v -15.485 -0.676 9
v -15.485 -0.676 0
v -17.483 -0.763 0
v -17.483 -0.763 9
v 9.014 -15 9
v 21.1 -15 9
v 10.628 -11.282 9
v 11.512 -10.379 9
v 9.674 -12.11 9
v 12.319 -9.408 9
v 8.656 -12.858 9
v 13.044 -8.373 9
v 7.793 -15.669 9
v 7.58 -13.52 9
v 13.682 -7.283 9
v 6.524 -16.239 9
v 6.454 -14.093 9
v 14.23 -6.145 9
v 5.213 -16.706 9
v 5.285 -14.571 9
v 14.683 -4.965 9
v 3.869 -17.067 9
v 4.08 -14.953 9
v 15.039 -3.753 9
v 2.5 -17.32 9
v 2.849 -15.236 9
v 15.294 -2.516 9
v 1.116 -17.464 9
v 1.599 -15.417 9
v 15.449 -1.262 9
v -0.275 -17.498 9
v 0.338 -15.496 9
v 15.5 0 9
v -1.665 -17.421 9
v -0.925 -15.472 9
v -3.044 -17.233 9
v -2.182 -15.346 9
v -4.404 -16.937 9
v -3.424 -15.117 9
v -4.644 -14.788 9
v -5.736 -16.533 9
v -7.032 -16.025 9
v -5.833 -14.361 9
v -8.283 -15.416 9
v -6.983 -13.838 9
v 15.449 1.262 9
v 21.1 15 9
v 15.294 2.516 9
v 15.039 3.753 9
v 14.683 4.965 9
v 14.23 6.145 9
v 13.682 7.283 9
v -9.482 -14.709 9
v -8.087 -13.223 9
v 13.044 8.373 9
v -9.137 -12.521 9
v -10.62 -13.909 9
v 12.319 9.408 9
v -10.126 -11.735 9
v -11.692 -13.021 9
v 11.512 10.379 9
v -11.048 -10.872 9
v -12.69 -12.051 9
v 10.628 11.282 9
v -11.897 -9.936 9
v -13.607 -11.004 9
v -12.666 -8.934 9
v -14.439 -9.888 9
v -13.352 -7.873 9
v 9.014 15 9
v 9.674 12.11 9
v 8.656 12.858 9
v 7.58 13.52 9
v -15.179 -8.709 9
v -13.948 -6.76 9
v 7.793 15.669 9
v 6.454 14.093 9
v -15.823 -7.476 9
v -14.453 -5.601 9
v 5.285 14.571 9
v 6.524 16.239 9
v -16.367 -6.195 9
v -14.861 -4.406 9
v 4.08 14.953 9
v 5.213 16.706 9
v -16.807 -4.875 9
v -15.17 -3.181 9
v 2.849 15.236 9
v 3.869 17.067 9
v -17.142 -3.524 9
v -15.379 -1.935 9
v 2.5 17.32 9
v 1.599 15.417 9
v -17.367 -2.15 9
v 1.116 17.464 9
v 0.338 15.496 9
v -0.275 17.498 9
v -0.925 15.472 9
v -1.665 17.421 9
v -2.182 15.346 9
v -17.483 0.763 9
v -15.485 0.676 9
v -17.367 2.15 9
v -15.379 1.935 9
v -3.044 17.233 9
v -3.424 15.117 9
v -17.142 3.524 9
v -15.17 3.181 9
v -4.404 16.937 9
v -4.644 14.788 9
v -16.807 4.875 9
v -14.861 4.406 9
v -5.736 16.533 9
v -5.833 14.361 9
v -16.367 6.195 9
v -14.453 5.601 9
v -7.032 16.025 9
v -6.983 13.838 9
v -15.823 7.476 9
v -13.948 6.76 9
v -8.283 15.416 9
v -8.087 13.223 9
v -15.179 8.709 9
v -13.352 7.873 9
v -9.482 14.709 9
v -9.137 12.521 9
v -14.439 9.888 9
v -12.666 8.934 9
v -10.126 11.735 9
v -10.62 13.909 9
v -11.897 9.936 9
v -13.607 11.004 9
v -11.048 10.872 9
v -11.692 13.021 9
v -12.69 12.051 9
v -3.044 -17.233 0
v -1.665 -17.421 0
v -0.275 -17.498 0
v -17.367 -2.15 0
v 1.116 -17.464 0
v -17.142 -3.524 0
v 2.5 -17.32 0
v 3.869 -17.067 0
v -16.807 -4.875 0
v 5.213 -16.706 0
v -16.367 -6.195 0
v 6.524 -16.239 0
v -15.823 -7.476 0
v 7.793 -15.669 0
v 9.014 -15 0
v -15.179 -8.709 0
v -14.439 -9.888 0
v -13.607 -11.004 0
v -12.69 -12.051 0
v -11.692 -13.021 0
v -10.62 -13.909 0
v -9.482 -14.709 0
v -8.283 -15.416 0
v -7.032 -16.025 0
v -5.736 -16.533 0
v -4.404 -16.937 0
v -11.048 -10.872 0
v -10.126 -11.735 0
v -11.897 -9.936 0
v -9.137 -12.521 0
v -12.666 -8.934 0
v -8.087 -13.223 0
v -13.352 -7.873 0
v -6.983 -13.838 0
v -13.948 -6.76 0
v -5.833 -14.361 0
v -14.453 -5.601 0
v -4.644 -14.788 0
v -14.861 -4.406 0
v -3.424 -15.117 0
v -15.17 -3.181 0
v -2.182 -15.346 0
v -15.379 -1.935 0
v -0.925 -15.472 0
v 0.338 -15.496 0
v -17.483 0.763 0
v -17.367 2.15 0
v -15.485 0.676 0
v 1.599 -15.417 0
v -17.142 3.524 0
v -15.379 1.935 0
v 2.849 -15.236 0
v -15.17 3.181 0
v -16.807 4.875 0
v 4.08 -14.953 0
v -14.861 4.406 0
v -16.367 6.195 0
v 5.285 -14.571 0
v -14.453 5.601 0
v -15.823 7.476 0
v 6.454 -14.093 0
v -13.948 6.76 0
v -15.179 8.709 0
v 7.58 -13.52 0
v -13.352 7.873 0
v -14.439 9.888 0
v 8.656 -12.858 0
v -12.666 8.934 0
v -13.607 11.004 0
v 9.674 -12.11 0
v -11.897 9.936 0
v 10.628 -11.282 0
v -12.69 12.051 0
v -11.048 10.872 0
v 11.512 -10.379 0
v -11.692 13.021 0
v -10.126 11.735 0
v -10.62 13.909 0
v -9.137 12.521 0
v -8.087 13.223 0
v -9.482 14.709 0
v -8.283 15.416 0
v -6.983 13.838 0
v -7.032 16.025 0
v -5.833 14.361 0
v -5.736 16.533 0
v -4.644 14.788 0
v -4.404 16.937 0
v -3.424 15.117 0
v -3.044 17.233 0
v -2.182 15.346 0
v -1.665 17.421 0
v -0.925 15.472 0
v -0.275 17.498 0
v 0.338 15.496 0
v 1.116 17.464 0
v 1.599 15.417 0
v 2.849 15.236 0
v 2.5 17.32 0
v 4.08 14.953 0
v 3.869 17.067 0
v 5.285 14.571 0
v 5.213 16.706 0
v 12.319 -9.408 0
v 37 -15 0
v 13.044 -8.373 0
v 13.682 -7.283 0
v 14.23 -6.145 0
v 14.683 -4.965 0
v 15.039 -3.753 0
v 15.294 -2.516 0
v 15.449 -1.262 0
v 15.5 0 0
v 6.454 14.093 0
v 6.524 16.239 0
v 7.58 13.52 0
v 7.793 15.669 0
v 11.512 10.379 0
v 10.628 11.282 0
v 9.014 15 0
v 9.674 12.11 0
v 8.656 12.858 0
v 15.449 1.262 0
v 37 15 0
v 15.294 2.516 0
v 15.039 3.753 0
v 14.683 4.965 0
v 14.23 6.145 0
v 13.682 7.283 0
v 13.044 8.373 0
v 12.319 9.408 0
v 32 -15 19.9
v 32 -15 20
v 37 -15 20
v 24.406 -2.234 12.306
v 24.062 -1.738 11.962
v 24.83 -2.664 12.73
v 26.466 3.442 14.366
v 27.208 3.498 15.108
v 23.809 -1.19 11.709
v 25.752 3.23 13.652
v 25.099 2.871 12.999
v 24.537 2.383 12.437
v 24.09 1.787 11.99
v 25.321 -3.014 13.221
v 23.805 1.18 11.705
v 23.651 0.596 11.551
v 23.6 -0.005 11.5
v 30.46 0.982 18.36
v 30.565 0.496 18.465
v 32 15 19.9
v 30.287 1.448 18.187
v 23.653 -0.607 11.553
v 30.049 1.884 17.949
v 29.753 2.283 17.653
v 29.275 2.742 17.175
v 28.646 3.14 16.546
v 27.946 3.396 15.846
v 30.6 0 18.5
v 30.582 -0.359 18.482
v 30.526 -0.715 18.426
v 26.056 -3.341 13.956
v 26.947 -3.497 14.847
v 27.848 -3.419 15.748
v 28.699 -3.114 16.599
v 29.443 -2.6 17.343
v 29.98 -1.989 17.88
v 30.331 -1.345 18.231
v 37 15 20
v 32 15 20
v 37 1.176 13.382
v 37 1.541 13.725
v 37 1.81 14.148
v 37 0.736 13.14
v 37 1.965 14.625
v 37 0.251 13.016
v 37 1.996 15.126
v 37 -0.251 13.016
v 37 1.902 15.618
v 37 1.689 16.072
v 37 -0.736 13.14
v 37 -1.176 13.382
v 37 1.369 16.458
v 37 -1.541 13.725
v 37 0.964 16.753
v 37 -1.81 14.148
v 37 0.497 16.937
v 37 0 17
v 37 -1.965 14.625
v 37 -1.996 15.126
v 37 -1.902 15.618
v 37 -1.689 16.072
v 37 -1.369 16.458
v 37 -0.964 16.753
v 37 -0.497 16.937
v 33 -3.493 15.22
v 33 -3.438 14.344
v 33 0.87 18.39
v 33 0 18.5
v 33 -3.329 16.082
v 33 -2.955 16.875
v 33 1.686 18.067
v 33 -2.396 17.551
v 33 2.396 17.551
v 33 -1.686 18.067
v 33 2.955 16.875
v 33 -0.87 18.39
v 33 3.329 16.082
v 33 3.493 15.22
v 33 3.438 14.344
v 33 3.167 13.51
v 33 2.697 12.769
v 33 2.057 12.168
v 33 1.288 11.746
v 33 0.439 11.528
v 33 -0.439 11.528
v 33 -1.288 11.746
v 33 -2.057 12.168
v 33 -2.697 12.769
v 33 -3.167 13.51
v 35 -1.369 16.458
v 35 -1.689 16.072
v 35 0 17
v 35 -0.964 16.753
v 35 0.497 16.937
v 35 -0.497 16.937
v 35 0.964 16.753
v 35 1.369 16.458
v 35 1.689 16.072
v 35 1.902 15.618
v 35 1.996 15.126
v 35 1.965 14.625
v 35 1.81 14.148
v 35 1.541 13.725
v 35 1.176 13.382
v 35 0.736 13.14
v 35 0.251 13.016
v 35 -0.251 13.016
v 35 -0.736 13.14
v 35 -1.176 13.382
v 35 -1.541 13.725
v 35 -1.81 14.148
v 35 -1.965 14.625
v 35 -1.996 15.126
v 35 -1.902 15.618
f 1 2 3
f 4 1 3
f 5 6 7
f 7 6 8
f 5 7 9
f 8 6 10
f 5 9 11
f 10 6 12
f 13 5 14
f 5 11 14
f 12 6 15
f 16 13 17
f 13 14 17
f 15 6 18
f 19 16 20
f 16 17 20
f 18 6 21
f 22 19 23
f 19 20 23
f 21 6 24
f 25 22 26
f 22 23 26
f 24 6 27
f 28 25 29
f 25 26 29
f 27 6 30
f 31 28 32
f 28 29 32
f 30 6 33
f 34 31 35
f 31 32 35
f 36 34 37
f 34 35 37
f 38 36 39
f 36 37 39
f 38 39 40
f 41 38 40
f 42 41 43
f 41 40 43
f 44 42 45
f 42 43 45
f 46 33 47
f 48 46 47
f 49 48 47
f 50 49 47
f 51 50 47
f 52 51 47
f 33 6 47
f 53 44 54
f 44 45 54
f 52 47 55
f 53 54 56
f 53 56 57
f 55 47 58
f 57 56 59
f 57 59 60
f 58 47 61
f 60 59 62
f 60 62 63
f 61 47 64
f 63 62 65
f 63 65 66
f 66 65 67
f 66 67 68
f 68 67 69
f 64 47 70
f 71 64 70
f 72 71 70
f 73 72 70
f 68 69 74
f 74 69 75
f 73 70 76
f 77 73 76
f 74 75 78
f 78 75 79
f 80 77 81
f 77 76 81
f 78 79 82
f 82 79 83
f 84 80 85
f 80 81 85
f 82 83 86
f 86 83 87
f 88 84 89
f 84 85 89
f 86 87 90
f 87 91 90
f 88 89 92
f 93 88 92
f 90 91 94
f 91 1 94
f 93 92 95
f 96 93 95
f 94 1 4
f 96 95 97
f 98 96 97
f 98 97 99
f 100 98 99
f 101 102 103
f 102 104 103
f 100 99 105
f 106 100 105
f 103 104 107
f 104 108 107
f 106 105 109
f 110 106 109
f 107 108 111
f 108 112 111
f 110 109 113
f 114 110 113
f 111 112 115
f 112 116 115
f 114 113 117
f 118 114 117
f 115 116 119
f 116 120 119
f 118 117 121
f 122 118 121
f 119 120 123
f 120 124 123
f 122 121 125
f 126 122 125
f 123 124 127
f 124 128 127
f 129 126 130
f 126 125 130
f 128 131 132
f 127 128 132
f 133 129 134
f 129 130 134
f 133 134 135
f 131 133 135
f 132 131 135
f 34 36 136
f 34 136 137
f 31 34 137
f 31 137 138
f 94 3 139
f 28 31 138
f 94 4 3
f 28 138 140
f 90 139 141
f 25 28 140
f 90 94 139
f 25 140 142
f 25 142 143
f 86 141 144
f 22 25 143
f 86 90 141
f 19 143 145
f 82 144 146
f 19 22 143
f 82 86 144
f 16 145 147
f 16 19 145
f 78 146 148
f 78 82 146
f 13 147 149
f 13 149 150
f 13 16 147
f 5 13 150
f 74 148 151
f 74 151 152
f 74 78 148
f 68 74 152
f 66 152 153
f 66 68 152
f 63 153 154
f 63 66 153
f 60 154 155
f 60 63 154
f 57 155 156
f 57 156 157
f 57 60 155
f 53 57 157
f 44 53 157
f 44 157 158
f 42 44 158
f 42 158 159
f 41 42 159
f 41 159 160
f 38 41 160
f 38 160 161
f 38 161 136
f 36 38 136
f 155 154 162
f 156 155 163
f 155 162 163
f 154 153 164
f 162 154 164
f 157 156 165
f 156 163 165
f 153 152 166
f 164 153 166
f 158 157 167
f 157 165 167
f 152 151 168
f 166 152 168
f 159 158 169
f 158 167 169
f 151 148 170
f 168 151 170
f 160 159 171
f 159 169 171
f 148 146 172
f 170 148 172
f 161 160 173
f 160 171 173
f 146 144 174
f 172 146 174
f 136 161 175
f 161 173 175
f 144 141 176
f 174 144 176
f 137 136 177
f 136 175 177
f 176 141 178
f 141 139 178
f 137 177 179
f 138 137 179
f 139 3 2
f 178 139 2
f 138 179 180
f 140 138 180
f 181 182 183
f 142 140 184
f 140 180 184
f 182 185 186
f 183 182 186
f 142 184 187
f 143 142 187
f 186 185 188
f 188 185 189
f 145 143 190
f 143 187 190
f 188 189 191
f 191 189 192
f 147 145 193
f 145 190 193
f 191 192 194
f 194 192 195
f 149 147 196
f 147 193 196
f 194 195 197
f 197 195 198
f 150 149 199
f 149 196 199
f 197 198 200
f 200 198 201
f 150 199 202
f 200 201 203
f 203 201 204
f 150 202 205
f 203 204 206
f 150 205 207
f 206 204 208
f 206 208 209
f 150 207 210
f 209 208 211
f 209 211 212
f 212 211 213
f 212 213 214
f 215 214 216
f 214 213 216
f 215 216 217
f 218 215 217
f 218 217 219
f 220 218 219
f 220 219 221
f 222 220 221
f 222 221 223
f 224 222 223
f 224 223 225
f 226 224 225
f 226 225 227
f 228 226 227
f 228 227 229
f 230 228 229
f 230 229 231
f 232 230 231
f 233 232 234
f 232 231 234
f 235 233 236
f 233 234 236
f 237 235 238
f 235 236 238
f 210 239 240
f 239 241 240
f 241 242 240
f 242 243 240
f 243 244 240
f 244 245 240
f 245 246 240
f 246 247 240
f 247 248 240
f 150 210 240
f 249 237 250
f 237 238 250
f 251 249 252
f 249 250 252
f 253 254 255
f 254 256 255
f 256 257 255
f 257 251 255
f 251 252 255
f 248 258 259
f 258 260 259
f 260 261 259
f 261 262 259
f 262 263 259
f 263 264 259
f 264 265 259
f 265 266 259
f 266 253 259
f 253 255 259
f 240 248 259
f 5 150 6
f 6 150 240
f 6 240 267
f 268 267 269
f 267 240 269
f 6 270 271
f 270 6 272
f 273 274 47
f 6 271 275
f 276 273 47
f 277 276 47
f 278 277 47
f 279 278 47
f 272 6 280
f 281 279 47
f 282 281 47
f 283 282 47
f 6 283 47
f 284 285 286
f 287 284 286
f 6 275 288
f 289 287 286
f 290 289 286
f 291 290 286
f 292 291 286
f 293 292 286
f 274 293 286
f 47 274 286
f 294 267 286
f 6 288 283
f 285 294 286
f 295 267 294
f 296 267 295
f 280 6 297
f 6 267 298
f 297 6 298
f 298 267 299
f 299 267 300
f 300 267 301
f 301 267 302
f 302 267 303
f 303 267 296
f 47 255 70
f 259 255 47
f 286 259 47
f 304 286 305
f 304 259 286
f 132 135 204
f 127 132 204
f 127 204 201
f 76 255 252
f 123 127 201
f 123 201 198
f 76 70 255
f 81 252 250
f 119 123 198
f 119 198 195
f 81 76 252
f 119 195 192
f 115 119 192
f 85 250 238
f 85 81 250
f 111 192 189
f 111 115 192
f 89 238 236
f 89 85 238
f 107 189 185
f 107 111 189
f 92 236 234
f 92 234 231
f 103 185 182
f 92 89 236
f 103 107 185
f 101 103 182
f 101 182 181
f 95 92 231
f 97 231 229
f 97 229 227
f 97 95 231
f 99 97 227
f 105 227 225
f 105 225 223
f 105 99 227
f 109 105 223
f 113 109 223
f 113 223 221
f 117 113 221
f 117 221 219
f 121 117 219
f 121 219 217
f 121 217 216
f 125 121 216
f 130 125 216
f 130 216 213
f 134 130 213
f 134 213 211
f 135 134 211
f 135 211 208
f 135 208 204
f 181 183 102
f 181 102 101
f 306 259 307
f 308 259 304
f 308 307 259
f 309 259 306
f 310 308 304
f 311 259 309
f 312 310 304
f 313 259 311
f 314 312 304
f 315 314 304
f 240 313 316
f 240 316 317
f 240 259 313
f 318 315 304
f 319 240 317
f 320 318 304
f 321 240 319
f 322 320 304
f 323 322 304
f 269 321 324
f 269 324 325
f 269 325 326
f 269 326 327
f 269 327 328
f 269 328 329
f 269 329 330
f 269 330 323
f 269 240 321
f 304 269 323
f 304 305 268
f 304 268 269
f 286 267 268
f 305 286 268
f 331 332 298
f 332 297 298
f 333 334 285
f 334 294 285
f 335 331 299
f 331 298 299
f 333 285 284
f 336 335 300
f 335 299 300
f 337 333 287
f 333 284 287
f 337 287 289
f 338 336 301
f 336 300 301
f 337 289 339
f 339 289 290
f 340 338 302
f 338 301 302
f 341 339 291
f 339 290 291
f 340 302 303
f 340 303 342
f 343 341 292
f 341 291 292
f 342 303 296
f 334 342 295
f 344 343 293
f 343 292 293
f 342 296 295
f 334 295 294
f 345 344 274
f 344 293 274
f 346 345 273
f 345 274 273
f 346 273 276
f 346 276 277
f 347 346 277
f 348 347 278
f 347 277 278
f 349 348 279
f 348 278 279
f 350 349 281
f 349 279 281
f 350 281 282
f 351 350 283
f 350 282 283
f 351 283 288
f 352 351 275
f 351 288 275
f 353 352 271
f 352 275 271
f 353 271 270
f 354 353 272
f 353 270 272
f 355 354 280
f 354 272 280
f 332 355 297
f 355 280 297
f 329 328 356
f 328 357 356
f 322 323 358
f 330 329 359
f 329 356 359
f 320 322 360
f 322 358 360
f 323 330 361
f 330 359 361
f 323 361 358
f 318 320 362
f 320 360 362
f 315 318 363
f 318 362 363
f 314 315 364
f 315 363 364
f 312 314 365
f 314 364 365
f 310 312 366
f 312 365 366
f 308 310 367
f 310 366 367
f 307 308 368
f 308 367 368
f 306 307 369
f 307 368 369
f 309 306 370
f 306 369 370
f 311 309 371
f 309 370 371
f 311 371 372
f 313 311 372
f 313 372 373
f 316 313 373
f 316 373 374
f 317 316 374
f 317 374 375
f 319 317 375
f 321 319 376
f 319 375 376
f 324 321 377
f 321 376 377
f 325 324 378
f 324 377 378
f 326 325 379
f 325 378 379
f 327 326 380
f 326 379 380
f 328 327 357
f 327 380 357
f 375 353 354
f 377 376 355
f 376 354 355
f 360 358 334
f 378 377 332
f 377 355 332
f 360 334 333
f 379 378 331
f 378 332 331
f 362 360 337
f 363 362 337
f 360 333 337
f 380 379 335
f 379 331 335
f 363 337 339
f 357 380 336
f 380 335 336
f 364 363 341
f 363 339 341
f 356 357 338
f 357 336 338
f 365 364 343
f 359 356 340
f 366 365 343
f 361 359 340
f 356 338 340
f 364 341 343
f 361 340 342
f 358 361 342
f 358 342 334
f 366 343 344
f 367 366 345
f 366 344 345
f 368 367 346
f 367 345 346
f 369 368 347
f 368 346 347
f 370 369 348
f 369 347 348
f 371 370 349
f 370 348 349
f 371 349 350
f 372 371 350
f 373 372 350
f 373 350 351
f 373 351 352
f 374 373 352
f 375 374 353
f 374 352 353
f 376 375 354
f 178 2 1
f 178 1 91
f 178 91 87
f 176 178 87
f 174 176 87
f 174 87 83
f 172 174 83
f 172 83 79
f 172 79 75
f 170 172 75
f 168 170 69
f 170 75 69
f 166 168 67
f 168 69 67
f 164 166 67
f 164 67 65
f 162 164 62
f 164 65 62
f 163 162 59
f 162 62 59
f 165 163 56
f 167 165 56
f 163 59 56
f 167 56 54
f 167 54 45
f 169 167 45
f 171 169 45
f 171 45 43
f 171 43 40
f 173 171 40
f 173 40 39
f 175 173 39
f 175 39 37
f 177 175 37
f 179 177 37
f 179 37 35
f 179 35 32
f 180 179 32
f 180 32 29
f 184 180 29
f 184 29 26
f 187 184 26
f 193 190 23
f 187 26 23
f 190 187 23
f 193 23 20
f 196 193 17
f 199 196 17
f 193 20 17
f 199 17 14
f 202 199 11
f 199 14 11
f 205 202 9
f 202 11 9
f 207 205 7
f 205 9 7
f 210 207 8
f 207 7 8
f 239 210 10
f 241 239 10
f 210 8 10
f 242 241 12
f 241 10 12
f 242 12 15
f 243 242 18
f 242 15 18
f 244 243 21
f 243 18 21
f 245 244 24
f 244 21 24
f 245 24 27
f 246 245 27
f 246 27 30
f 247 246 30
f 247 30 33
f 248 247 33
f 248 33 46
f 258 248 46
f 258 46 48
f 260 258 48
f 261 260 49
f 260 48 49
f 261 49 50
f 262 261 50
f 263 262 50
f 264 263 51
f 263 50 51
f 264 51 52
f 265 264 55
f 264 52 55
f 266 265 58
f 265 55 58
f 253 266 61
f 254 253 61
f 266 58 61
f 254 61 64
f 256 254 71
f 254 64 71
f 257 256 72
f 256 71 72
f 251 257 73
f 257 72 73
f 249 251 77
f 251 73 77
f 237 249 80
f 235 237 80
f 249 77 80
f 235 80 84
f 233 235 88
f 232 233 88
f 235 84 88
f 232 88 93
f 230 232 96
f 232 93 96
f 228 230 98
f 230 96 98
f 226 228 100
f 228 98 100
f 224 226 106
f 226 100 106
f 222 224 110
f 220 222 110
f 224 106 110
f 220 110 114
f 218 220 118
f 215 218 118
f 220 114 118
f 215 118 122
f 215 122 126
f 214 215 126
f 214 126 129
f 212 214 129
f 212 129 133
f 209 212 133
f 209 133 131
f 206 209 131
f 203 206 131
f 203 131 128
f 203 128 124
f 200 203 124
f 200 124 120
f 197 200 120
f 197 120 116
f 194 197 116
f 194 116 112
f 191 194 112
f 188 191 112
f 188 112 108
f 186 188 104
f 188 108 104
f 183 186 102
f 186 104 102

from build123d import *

# Parameters (mm, degrees)
CYLINDER003_R               = 3.5
CYLINDER003_DEPTH           = 10
CYLINDER002_R               = 2
CYLINDER002_DEPTH           = 10
FUSION_PITCH_ANGLE          = -90
CYLINDER_R                  = 15.5
CYLINDER_DEPTH              = 9
CYLINDER001_W               = 17.5
CYLINDER001_H               = 9
CYLINDER001_ANGLE           = 355
CYLINDER001_PLACEMENT_ANGLE = 182.5
BOX001_W                    = 5
BOX001_H                    = 30
BOX001_DEPTH                = 20
BOX_W                       = 24
BOX_H                       = 30
BOX_DEPTH                   = 9
CHAMFER_SIZE                = 10.9


with BuildPart() as cylinder003:
    # Cylinder003 → Cylinder003 (new body)
    with BuildSketch(Plane(origin=(15, -5, 5), x_dir=(1, 0, 0), z_dir=(0, 0, 1))):
        Circle(CYLINDER003_R)
    extrude(amount=CYLINDER003_DEPTH)


with BuildPart() as cone:
    # Cone → Cone (revolve)
    with BuildSketch(Plane(origin=(15, -5, 3), x_dir=(1, 0, 0), z_dir=(0, -1, 0))):
        Polygon((0, 0), (2, 0), (3.5, 2), (0, 2), align=None)
    revolve(axis=Axis((15, -5, 3), (0, 0, 1)))


with BuildPart() as fusion:
    # Cylinder002 → Cylinder002 (new body)
    with BuildSketch(Plane(origin=(15, -5, 0), x_dir=(1, 0, 0), z_dir=(0, 0, 1))):
        Circle(CYLINDER002_R)
    extrude(amount=CYLINDER002_DEPTH)

    # Fusion: union Cylinder003, Cone
    add(cylinder003.part)
    add(cone.part)


with BuildPart() as fusion_1:
    # Fusion pitch: moved
    add(fusion.part.rotate(Axis((0, 0, 0), (0, 1, 0)), FUSION_PITCH_ANGLE))


with BuildPart() as fusion_2:
    # Fusion placement: moved
    add(fusion_1.part.moved(Location((38, 5, 0))))


with BuildPart() as fusion002:
    # Cylinder → Cylinder (new body)
    with BuildSketch(Plane.XY):
        Circle(CYLINDER_R)
    extrude(amount=CYLINDER_DEPTH)

    # Fusion002: union Fusion
    add(fusion_2.part)


with BuildPart() as cylinder001:
    # Cylinder001 → Cylinder001 (revolve)
    with BuildSketch(Plane.XZ):
        with Locations((8.75, 4.5)):
            Rectangle(CYLINDER001_W, CYLINDER001_H)
    revolve(axis=Axis((0, 0, 0), (0, 0, 1)), revolution_arc=CYLINDER001_ANGLE)


with BuildPart() as cylinder001_1:
    # Cylinder001 placement: moved
    add(cylinder001.part.rotate(Axis((0, 0, 0), (0, 0, 1)), CYLINDER001_PLACEMENT_ANGLE))


with BuildPart() as cube001:
    # Box001 → Box001 (new body)
    with BuildSketch(Plane(origin=(32, -15, 0), x_dir=(1, 0, 0), z_dir=(0, 0, 1))):
        with Locations((2.5, 15)):
            Rectangle(BOX001_W, BOX001_H)
    extrude(amount=BOX001_DEPTH)


with BuildPart() as cut:
    # Box → Box (new body)
    with BuildSketch(Plane(origin=(8, -15, 0), x_dir=(1, 0, 0), z_dir=(0, 0, 1))):
        with Locations((12, 15)):
            Rectangle(BOX_W, BOX_H)
    extrude(amount=BOX_DEPTH)

    # Fusion003: union Cube001
    add(cube001.part)

    # Chamfer
    chamfer_edges = [cut.edges().sort_by_distance(p)[0] for p in [
        (32, 0, 9),
    ]]
    chamfer(chamfer_edges, length=CHAMFER_SIZE)

    # Fusion004: union Cylinder001
    add(cylinder001_1.part)

    # Cut: cut Fusion002
    add(fusion002.part, mode=Mode.SUBTRACT)


solid = cut.part
